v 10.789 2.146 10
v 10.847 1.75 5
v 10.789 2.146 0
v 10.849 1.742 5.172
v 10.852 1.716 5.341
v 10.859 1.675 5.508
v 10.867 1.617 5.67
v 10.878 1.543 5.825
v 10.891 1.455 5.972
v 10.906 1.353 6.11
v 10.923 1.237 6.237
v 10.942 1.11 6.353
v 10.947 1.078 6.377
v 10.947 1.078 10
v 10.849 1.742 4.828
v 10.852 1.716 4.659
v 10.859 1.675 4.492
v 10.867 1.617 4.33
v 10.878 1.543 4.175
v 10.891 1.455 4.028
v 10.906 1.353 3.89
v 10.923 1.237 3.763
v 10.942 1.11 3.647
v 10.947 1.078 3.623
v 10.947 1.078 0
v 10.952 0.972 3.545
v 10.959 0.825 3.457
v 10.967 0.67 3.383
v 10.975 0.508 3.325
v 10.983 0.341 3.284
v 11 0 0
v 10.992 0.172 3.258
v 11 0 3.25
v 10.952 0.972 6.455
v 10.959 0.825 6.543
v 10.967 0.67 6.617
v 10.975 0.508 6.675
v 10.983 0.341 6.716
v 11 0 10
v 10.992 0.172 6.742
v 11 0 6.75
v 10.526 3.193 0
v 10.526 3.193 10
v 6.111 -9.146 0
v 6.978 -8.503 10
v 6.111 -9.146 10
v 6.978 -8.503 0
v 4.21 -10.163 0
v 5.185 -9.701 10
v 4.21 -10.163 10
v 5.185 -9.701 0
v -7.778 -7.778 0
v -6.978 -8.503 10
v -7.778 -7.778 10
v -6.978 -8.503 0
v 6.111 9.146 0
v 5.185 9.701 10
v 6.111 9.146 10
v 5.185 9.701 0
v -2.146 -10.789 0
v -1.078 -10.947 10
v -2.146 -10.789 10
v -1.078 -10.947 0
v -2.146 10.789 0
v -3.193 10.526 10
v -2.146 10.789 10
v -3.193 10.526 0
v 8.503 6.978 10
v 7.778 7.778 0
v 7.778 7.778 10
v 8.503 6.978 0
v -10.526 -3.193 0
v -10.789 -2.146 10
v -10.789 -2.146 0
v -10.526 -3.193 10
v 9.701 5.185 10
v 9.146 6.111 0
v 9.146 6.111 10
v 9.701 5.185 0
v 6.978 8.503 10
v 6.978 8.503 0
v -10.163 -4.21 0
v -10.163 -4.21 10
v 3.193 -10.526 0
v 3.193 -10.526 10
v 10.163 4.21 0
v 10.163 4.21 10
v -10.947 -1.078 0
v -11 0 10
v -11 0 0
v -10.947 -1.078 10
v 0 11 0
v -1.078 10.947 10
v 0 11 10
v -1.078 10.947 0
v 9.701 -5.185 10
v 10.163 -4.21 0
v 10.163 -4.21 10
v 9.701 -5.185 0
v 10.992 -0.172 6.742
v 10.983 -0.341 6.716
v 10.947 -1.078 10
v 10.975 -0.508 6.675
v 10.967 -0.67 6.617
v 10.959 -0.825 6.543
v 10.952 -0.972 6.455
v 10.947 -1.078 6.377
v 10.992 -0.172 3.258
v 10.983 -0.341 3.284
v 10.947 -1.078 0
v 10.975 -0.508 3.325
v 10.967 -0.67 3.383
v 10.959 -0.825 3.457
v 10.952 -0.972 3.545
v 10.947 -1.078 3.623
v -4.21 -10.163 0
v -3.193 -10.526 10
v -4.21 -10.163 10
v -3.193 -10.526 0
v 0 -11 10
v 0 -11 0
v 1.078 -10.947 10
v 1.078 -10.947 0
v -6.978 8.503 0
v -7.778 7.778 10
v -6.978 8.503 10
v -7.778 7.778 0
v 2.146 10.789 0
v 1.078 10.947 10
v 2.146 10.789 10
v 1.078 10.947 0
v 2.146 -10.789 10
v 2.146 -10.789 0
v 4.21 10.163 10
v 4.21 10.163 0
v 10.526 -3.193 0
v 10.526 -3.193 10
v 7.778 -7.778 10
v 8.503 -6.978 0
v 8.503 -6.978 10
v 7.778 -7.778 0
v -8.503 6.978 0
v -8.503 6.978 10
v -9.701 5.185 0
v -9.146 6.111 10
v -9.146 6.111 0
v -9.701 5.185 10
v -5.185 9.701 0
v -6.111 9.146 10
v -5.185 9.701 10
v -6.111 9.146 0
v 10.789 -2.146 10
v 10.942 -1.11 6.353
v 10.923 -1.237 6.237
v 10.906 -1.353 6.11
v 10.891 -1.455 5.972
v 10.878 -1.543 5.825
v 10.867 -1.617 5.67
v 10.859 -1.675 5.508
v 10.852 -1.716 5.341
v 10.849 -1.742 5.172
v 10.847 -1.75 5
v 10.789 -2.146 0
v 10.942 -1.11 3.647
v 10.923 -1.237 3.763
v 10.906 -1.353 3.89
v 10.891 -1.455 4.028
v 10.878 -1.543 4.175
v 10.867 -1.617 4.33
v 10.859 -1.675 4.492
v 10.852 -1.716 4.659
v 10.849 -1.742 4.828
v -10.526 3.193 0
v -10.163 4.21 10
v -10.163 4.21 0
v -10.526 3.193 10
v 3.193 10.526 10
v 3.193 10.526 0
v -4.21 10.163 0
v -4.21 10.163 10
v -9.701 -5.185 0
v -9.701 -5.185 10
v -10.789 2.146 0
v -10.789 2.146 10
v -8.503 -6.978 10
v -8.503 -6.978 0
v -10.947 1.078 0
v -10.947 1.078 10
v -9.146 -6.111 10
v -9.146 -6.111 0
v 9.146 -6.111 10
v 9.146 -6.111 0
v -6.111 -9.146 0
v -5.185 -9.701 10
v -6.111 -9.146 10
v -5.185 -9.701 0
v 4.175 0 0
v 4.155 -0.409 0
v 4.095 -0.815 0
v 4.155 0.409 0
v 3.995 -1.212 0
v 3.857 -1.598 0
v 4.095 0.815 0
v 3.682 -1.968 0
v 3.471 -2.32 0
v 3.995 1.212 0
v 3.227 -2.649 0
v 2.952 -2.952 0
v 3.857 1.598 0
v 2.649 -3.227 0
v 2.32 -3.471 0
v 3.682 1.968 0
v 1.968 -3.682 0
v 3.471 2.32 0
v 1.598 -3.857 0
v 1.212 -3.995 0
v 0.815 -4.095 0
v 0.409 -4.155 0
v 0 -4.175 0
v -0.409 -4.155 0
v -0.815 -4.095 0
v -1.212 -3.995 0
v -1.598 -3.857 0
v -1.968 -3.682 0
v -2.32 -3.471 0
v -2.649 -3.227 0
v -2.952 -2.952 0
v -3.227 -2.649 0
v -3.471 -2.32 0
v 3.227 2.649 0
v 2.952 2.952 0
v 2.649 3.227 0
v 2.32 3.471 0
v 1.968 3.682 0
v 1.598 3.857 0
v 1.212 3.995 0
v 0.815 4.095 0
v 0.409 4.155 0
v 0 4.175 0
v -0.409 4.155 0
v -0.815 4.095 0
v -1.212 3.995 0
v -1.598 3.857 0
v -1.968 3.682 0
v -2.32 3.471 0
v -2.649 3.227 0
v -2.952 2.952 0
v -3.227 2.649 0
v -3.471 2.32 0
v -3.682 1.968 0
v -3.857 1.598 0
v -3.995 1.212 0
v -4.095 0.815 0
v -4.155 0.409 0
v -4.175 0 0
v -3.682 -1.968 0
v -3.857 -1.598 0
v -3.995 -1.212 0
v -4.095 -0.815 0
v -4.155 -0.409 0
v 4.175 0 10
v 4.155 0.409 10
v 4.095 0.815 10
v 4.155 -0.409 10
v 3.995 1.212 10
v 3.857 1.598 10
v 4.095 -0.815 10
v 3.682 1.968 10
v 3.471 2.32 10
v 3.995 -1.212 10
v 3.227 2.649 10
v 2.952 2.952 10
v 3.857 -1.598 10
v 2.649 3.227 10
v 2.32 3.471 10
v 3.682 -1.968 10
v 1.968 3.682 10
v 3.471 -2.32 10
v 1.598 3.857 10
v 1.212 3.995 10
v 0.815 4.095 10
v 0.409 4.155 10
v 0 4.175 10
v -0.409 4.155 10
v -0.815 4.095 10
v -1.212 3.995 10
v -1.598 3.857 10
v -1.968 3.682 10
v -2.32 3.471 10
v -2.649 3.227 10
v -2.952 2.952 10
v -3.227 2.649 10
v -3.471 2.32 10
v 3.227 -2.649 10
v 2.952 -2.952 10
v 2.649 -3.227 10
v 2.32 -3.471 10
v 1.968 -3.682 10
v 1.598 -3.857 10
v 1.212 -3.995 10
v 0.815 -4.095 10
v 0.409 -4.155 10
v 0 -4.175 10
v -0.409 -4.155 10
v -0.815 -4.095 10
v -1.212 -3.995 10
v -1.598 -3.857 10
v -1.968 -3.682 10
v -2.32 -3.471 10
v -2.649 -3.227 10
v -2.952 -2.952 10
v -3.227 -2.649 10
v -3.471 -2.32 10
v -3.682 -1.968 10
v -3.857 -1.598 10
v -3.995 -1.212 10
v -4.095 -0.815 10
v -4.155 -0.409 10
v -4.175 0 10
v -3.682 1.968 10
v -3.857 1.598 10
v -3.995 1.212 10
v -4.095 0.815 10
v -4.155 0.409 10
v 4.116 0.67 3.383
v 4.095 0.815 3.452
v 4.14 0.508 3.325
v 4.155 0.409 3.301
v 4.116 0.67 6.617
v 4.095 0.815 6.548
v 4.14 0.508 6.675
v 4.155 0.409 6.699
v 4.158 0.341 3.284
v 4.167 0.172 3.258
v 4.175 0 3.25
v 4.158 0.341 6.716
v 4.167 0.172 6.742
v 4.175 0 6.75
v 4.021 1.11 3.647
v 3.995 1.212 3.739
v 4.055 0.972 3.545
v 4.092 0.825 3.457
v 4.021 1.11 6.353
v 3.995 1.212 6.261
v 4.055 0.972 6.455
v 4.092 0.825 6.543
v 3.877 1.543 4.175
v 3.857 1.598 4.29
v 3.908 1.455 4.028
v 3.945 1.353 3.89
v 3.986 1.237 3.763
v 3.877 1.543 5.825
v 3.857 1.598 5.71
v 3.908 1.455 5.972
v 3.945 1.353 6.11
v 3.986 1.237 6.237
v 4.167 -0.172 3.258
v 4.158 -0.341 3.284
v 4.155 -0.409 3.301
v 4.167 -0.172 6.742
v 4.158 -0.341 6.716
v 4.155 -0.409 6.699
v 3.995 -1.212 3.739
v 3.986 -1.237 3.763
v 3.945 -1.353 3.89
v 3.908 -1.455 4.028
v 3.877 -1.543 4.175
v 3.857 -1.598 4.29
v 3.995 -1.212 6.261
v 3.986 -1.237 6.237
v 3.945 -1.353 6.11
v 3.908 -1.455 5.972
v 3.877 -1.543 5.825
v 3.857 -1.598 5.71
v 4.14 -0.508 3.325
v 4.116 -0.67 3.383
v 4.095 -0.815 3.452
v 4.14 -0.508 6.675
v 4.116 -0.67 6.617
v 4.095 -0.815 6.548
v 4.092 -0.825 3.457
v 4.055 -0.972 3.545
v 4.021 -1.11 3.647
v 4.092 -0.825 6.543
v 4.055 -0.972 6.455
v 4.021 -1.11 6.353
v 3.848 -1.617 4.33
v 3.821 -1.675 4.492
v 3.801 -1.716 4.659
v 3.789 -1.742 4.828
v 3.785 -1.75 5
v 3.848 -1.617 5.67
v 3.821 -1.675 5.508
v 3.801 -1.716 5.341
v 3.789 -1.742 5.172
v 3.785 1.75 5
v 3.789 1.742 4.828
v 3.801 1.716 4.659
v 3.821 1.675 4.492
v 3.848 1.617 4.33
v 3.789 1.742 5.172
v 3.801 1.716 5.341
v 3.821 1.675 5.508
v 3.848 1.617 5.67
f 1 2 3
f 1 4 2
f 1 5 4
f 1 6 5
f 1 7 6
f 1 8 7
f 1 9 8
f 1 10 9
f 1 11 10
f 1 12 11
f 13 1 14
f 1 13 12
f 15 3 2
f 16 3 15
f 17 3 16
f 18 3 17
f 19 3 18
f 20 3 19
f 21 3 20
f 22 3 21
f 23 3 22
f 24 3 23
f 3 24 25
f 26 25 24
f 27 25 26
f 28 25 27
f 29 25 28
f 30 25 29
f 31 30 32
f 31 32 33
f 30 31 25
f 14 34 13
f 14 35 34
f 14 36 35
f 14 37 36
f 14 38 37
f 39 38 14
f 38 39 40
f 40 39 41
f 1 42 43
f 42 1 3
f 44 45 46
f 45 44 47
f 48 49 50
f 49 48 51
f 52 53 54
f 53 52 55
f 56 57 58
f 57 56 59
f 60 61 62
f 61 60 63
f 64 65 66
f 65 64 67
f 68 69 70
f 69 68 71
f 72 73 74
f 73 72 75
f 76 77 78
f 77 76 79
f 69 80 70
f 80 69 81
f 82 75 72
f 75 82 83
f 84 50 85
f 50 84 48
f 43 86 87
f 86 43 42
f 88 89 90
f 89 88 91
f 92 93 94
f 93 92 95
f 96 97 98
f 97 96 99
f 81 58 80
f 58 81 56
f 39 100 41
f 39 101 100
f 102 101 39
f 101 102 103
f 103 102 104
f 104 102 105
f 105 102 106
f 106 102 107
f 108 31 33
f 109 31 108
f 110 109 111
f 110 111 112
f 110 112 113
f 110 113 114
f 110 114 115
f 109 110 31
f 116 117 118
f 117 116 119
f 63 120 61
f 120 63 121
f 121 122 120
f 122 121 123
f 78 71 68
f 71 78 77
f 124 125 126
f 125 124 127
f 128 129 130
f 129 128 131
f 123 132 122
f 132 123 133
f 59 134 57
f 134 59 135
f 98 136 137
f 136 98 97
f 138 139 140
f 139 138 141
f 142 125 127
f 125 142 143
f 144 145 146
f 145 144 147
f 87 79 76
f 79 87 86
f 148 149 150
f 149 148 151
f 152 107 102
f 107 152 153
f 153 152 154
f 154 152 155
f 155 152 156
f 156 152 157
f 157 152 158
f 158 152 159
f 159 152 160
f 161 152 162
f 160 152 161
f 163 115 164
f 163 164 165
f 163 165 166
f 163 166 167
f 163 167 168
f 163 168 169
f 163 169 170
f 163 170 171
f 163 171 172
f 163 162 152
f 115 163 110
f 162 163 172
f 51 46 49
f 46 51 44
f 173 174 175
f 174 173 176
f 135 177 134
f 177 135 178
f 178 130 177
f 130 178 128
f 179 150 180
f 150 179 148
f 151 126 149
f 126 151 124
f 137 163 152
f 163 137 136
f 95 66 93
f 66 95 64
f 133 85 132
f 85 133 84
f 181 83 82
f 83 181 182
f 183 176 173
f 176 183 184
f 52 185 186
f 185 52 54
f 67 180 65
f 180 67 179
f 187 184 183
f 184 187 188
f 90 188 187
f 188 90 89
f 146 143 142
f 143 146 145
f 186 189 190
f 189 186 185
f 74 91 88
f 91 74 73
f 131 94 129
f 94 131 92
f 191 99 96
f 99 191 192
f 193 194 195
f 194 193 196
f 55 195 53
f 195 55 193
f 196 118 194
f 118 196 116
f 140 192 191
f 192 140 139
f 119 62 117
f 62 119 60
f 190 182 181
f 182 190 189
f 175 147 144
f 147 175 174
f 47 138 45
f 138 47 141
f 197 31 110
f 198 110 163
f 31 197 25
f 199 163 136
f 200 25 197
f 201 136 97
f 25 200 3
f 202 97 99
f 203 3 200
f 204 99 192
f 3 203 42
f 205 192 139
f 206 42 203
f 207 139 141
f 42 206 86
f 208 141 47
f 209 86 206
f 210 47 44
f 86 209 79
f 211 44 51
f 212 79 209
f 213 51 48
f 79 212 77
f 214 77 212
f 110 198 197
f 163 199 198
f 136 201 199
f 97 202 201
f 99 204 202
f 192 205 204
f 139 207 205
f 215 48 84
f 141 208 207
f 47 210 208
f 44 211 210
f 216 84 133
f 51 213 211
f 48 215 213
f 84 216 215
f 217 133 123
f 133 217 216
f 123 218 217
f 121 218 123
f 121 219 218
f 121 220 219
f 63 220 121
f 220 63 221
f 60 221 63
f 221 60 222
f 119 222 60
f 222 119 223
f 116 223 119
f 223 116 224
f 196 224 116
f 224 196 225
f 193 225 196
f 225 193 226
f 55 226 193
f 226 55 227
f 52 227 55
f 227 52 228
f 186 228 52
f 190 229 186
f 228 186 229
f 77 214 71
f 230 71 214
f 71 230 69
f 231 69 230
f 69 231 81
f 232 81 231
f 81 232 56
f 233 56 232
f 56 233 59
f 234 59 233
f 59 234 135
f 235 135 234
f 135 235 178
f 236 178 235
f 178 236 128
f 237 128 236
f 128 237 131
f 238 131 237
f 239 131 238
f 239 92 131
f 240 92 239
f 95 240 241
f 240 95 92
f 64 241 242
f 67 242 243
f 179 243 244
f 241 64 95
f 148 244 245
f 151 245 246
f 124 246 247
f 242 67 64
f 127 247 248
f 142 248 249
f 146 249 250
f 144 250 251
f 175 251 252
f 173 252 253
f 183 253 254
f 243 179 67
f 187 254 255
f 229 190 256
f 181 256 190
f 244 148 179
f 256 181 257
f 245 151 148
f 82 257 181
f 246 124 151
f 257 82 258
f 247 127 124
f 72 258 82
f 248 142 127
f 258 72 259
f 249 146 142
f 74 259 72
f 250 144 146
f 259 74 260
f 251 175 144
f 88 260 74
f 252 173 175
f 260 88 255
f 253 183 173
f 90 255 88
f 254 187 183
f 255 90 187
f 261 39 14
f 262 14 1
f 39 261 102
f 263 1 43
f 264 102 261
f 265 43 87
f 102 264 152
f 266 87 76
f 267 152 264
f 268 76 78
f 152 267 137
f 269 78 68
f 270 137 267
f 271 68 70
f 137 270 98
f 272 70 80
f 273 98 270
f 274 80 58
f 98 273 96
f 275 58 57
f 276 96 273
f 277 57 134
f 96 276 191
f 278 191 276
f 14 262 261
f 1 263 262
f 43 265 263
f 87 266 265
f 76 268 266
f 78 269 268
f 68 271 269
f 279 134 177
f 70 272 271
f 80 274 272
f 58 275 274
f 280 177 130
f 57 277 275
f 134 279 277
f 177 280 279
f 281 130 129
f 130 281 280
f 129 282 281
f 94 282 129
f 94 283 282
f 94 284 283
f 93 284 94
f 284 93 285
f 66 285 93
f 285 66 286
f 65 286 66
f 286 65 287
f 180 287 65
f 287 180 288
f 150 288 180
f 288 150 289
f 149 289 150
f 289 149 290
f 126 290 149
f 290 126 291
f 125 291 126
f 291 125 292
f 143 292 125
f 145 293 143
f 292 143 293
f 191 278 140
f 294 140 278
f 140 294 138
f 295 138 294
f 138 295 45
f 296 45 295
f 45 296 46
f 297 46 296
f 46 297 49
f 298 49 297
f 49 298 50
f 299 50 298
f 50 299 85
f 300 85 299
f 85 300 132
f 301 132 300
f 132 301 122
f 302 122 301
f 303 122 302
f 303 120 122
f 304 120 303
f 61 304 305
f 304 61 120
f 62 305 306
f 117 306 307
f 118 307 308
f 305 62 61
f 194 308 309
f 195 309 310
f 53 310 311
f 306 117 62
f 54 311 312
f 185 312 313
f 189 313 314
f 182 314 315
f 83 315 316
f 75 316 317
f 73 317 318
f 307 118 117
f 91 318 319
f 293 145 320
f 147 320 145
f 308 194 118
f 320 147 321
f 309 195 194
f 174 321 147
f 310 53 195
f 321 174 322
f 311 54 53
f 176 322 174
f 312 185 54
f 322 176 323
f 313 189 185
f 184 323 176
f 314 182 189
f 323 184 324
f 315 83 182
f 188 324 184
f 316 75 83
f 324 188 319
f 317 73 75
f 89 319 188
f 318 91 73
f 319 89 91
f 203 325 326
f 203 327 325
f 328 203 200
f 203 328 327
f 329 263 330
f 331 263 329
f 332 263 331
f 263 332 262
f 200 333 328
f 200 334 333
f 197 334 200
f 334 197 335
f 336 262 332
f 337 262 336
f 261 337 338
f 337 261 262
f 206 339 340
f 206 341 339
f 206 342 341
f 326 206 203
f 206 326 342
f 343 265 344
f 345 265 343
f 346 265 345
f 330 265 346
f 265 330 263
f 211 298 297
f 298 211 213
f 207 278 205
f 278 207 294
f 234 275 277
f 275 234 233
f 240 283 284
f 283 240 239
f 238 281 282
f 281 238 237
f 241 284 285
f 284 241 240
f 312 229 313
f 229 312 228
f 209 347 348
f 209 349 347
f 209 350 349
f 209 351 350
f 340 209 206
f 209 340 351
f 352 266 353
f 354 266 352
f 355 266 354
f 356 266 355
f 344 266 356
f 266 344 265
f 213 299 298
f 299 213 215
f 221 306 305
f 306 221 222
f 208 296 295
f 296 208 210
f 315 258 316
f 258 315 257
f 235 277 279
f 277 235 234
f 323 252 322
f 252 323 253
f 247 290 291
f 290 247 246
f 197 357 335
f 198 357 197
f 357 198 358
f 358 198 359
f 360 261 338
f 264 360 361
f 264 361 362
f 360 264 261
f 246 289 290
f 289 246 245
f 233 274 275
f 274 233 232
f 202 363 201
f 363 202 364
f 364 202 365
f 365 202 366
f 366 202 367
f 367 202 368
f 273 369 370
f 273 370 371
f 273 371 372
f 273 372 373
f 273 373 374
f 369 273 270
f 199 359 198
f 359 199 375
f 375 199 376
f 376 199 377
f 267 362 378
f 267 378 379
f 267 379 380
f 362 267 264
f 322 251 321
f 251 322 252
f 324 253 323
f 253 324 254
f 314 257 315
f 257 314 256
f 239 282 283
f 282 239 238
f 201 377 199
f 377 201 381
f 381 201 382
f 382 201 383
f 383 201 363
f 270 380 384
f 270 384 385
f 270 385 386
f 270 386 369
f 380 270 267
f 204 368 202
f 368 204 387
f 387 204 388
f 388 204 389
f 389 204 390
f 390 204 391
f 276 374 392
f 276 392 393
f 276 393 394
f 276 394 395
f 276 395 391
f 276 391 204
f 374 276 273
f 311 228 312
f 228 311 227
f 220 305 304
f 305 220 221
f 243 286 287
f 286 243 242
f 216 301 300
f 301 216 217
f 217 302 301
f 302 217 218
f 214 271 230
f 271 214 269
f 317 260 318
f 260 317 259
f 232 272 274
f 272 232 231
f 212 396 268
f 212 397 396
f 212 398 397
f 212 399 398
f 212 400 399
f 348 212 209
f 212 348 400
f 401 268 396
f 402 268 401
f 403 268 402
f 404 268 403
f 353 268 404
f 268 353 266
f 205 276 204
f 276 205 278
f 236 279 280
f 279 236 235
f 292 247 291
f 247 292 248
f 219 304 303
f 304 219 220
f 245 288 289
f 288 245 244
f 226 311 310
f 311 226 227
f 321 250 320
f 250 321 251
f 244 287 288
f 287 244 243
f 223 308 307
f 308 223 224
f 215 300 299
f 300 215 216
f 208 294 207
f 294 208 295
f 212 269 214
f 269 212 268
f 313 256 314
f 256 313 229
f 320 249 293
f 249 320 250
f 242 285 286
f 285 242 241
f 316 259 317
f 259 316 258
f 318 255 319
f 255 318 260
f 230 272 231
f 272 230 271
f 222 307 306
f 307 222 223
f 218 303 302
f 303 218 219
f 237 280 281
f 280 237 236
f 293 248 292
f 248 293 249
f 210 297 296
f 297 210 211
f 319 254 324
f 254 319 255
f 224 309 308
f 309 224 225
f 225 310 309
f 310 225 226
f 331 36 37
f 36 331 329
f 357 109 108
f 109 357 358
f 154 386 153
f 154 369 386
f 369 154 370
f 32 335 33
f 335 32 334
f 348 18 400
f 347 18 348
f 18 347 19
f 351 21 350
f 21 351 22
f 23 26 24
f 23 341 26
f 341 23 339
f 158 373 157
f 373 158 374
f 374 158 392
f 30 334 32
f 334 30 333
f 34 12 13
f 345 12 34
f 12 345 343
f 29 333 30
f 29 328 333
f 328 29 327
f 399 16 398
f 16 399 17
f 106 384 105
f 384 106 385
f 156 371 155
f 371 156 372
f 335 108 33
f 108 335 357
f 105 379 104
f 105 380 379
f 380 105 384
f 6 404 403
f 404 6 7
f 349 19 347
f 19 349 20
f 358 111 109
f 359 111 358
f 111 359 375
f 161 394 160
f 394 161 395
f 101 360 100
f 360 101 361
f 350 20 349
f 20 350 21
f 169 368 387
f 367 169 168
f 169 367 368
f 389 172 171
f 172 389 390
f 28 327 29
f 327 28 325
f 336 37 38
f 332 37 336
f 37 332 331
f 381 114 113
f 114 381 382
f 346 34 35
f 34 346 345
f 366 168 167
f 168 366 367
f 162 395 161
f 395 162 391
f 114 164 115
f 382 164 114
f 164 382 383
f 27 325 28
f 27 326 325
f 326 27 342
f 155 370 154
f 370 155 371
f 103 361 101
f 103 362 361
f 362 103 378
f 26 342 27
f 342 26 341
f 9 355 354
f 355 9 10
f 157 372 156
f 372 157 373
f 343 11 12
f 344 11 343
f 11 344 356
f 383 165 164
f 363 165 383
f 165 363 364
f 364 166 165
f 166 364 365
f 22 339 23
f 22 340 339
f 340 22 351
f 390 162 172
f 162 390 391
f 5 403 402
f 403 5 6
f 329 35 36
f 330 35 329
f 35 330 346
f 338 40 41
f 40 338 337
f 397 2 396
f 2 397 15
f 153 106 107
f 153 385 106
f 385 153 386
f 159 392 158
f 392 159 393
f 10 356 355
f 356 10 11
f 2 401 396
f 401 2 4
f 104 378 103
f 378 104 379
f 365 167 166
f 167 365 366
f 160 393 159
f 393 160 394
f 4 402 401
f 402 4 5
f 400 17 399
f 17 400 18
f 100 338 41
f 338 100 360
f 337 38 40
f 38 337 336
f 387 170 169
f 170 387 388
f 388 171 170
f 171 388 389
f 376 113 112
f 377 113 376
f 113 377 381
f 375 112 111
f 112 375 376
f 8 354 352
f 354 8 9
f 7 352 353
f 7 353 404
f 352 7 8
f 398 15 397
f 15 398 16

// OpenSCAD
// file: parameters.scad
// =============================================================================
// Gen-AY Vernier flux-claw mega - WOUND-AWARE (HARD GATE)
// Dual-rotor vernier: Rotor B +22.5 deg vs 12-slot stator; O5 flux claws
// =============================================================================

wire_awg            = 26;
wire_od             = 0.45;
turns               = 210;      // +5 vs Gen-AV 205
fill                = 0.70;
layers_per_face     = 2;
wind_build_axial    = layers_per_face * wire_od * fill;   // 0.63 mm
wind_build_radial   = 3 * wire_od * fill;                 // 0.945 mm

coil_id_r           = 14.5;
coil_od_r           = 61.5;
span_deg            = 25.0;
former_web          = 1.20;     // print floor LB walls
flange_t            = 0.60;
wall                = 1.2;
slot_w              = 2.4;
mount_hole          = 3.5;
tab_len             = 7.0;

former_bare_h       = former_web + 2 * flange_t;            // 2.40 mm
coil_envelope_h     = former_bare_h + 2 * wind_build_axial; // 3.66 mm

run_clear           = 0.50;
gap_spacer_h        = run_clear + wind_build_axial;         // 1.13 mm
m2m                 = coil_envelope_h + 2 * run_clear;      // 4.66 mm

coil_stations       = 12;
bay_r_in            = coil_id_r - 2.0 - wind_build_radial;
bay_r_out           = coil_od_r + 2.0 + wind_build_radial;
bay_span            = span_deg + 4.0;
bay_offset          = 2.0;
stator_thick        = former_bare_h;
stator_od           = 160.0;
shaft_clear_stator  = 34.0;
coil_mount_r        = 25.5;

large_pocket_d      = 20.3;
small_pocket_d      = 5.3;
pocket_h            = 5.2;
large_n             = 8;
R_large             = 38.0;     // closer to copper centroid vs AV R=38.5
R_small_inner       = 24.0;
R_small_mid         = 38.0;
R_small_outer       = 54.0;
carrier_od          = 156.0;
carrier_thick       = 7.5;
hub_h               = 10.0;
hub_od              = 30.0;
rotor_b_offset_deg  = 22.5;     // vernier offset vs 12-slot stator

shaft_bore          = 8.35;
bearing_d           = 21.85;
bearing_h           = 7.2;
m3_clear            = 3.5;
bolt_r_inner        = 36.0;
bolt_n_inner        = 6;
flange_bolt_r       = 72.0;
flange_bolt_n       = 6;
brace_r             = 68.0;
brace_d             = 4.3;
brace_n             = 4;

spacer_pad_od       = 14.0;
spacer_pad_id       = m3_clear;
endbell_od          = 160.0;
endbell_thick       = 8.0;
endbell_shaft_clear = 10.0;

$fn = 64;
// main file
// Gen-AY shaft collar — print ×2–4
include <parameters.scad>;
$fn = 64;
od = 22; id = shaft_bore; h = 10; set_d = 3.5;
difference() {
    cylinder(d=od, h=h);
    translate([0, 0, -0.1]) cylinder(d=id, h=h + 0.2);
    translate([0, 0, h/2]) rotate([0, 90, 0]) cylinder(d=set_d, h=od);
}
